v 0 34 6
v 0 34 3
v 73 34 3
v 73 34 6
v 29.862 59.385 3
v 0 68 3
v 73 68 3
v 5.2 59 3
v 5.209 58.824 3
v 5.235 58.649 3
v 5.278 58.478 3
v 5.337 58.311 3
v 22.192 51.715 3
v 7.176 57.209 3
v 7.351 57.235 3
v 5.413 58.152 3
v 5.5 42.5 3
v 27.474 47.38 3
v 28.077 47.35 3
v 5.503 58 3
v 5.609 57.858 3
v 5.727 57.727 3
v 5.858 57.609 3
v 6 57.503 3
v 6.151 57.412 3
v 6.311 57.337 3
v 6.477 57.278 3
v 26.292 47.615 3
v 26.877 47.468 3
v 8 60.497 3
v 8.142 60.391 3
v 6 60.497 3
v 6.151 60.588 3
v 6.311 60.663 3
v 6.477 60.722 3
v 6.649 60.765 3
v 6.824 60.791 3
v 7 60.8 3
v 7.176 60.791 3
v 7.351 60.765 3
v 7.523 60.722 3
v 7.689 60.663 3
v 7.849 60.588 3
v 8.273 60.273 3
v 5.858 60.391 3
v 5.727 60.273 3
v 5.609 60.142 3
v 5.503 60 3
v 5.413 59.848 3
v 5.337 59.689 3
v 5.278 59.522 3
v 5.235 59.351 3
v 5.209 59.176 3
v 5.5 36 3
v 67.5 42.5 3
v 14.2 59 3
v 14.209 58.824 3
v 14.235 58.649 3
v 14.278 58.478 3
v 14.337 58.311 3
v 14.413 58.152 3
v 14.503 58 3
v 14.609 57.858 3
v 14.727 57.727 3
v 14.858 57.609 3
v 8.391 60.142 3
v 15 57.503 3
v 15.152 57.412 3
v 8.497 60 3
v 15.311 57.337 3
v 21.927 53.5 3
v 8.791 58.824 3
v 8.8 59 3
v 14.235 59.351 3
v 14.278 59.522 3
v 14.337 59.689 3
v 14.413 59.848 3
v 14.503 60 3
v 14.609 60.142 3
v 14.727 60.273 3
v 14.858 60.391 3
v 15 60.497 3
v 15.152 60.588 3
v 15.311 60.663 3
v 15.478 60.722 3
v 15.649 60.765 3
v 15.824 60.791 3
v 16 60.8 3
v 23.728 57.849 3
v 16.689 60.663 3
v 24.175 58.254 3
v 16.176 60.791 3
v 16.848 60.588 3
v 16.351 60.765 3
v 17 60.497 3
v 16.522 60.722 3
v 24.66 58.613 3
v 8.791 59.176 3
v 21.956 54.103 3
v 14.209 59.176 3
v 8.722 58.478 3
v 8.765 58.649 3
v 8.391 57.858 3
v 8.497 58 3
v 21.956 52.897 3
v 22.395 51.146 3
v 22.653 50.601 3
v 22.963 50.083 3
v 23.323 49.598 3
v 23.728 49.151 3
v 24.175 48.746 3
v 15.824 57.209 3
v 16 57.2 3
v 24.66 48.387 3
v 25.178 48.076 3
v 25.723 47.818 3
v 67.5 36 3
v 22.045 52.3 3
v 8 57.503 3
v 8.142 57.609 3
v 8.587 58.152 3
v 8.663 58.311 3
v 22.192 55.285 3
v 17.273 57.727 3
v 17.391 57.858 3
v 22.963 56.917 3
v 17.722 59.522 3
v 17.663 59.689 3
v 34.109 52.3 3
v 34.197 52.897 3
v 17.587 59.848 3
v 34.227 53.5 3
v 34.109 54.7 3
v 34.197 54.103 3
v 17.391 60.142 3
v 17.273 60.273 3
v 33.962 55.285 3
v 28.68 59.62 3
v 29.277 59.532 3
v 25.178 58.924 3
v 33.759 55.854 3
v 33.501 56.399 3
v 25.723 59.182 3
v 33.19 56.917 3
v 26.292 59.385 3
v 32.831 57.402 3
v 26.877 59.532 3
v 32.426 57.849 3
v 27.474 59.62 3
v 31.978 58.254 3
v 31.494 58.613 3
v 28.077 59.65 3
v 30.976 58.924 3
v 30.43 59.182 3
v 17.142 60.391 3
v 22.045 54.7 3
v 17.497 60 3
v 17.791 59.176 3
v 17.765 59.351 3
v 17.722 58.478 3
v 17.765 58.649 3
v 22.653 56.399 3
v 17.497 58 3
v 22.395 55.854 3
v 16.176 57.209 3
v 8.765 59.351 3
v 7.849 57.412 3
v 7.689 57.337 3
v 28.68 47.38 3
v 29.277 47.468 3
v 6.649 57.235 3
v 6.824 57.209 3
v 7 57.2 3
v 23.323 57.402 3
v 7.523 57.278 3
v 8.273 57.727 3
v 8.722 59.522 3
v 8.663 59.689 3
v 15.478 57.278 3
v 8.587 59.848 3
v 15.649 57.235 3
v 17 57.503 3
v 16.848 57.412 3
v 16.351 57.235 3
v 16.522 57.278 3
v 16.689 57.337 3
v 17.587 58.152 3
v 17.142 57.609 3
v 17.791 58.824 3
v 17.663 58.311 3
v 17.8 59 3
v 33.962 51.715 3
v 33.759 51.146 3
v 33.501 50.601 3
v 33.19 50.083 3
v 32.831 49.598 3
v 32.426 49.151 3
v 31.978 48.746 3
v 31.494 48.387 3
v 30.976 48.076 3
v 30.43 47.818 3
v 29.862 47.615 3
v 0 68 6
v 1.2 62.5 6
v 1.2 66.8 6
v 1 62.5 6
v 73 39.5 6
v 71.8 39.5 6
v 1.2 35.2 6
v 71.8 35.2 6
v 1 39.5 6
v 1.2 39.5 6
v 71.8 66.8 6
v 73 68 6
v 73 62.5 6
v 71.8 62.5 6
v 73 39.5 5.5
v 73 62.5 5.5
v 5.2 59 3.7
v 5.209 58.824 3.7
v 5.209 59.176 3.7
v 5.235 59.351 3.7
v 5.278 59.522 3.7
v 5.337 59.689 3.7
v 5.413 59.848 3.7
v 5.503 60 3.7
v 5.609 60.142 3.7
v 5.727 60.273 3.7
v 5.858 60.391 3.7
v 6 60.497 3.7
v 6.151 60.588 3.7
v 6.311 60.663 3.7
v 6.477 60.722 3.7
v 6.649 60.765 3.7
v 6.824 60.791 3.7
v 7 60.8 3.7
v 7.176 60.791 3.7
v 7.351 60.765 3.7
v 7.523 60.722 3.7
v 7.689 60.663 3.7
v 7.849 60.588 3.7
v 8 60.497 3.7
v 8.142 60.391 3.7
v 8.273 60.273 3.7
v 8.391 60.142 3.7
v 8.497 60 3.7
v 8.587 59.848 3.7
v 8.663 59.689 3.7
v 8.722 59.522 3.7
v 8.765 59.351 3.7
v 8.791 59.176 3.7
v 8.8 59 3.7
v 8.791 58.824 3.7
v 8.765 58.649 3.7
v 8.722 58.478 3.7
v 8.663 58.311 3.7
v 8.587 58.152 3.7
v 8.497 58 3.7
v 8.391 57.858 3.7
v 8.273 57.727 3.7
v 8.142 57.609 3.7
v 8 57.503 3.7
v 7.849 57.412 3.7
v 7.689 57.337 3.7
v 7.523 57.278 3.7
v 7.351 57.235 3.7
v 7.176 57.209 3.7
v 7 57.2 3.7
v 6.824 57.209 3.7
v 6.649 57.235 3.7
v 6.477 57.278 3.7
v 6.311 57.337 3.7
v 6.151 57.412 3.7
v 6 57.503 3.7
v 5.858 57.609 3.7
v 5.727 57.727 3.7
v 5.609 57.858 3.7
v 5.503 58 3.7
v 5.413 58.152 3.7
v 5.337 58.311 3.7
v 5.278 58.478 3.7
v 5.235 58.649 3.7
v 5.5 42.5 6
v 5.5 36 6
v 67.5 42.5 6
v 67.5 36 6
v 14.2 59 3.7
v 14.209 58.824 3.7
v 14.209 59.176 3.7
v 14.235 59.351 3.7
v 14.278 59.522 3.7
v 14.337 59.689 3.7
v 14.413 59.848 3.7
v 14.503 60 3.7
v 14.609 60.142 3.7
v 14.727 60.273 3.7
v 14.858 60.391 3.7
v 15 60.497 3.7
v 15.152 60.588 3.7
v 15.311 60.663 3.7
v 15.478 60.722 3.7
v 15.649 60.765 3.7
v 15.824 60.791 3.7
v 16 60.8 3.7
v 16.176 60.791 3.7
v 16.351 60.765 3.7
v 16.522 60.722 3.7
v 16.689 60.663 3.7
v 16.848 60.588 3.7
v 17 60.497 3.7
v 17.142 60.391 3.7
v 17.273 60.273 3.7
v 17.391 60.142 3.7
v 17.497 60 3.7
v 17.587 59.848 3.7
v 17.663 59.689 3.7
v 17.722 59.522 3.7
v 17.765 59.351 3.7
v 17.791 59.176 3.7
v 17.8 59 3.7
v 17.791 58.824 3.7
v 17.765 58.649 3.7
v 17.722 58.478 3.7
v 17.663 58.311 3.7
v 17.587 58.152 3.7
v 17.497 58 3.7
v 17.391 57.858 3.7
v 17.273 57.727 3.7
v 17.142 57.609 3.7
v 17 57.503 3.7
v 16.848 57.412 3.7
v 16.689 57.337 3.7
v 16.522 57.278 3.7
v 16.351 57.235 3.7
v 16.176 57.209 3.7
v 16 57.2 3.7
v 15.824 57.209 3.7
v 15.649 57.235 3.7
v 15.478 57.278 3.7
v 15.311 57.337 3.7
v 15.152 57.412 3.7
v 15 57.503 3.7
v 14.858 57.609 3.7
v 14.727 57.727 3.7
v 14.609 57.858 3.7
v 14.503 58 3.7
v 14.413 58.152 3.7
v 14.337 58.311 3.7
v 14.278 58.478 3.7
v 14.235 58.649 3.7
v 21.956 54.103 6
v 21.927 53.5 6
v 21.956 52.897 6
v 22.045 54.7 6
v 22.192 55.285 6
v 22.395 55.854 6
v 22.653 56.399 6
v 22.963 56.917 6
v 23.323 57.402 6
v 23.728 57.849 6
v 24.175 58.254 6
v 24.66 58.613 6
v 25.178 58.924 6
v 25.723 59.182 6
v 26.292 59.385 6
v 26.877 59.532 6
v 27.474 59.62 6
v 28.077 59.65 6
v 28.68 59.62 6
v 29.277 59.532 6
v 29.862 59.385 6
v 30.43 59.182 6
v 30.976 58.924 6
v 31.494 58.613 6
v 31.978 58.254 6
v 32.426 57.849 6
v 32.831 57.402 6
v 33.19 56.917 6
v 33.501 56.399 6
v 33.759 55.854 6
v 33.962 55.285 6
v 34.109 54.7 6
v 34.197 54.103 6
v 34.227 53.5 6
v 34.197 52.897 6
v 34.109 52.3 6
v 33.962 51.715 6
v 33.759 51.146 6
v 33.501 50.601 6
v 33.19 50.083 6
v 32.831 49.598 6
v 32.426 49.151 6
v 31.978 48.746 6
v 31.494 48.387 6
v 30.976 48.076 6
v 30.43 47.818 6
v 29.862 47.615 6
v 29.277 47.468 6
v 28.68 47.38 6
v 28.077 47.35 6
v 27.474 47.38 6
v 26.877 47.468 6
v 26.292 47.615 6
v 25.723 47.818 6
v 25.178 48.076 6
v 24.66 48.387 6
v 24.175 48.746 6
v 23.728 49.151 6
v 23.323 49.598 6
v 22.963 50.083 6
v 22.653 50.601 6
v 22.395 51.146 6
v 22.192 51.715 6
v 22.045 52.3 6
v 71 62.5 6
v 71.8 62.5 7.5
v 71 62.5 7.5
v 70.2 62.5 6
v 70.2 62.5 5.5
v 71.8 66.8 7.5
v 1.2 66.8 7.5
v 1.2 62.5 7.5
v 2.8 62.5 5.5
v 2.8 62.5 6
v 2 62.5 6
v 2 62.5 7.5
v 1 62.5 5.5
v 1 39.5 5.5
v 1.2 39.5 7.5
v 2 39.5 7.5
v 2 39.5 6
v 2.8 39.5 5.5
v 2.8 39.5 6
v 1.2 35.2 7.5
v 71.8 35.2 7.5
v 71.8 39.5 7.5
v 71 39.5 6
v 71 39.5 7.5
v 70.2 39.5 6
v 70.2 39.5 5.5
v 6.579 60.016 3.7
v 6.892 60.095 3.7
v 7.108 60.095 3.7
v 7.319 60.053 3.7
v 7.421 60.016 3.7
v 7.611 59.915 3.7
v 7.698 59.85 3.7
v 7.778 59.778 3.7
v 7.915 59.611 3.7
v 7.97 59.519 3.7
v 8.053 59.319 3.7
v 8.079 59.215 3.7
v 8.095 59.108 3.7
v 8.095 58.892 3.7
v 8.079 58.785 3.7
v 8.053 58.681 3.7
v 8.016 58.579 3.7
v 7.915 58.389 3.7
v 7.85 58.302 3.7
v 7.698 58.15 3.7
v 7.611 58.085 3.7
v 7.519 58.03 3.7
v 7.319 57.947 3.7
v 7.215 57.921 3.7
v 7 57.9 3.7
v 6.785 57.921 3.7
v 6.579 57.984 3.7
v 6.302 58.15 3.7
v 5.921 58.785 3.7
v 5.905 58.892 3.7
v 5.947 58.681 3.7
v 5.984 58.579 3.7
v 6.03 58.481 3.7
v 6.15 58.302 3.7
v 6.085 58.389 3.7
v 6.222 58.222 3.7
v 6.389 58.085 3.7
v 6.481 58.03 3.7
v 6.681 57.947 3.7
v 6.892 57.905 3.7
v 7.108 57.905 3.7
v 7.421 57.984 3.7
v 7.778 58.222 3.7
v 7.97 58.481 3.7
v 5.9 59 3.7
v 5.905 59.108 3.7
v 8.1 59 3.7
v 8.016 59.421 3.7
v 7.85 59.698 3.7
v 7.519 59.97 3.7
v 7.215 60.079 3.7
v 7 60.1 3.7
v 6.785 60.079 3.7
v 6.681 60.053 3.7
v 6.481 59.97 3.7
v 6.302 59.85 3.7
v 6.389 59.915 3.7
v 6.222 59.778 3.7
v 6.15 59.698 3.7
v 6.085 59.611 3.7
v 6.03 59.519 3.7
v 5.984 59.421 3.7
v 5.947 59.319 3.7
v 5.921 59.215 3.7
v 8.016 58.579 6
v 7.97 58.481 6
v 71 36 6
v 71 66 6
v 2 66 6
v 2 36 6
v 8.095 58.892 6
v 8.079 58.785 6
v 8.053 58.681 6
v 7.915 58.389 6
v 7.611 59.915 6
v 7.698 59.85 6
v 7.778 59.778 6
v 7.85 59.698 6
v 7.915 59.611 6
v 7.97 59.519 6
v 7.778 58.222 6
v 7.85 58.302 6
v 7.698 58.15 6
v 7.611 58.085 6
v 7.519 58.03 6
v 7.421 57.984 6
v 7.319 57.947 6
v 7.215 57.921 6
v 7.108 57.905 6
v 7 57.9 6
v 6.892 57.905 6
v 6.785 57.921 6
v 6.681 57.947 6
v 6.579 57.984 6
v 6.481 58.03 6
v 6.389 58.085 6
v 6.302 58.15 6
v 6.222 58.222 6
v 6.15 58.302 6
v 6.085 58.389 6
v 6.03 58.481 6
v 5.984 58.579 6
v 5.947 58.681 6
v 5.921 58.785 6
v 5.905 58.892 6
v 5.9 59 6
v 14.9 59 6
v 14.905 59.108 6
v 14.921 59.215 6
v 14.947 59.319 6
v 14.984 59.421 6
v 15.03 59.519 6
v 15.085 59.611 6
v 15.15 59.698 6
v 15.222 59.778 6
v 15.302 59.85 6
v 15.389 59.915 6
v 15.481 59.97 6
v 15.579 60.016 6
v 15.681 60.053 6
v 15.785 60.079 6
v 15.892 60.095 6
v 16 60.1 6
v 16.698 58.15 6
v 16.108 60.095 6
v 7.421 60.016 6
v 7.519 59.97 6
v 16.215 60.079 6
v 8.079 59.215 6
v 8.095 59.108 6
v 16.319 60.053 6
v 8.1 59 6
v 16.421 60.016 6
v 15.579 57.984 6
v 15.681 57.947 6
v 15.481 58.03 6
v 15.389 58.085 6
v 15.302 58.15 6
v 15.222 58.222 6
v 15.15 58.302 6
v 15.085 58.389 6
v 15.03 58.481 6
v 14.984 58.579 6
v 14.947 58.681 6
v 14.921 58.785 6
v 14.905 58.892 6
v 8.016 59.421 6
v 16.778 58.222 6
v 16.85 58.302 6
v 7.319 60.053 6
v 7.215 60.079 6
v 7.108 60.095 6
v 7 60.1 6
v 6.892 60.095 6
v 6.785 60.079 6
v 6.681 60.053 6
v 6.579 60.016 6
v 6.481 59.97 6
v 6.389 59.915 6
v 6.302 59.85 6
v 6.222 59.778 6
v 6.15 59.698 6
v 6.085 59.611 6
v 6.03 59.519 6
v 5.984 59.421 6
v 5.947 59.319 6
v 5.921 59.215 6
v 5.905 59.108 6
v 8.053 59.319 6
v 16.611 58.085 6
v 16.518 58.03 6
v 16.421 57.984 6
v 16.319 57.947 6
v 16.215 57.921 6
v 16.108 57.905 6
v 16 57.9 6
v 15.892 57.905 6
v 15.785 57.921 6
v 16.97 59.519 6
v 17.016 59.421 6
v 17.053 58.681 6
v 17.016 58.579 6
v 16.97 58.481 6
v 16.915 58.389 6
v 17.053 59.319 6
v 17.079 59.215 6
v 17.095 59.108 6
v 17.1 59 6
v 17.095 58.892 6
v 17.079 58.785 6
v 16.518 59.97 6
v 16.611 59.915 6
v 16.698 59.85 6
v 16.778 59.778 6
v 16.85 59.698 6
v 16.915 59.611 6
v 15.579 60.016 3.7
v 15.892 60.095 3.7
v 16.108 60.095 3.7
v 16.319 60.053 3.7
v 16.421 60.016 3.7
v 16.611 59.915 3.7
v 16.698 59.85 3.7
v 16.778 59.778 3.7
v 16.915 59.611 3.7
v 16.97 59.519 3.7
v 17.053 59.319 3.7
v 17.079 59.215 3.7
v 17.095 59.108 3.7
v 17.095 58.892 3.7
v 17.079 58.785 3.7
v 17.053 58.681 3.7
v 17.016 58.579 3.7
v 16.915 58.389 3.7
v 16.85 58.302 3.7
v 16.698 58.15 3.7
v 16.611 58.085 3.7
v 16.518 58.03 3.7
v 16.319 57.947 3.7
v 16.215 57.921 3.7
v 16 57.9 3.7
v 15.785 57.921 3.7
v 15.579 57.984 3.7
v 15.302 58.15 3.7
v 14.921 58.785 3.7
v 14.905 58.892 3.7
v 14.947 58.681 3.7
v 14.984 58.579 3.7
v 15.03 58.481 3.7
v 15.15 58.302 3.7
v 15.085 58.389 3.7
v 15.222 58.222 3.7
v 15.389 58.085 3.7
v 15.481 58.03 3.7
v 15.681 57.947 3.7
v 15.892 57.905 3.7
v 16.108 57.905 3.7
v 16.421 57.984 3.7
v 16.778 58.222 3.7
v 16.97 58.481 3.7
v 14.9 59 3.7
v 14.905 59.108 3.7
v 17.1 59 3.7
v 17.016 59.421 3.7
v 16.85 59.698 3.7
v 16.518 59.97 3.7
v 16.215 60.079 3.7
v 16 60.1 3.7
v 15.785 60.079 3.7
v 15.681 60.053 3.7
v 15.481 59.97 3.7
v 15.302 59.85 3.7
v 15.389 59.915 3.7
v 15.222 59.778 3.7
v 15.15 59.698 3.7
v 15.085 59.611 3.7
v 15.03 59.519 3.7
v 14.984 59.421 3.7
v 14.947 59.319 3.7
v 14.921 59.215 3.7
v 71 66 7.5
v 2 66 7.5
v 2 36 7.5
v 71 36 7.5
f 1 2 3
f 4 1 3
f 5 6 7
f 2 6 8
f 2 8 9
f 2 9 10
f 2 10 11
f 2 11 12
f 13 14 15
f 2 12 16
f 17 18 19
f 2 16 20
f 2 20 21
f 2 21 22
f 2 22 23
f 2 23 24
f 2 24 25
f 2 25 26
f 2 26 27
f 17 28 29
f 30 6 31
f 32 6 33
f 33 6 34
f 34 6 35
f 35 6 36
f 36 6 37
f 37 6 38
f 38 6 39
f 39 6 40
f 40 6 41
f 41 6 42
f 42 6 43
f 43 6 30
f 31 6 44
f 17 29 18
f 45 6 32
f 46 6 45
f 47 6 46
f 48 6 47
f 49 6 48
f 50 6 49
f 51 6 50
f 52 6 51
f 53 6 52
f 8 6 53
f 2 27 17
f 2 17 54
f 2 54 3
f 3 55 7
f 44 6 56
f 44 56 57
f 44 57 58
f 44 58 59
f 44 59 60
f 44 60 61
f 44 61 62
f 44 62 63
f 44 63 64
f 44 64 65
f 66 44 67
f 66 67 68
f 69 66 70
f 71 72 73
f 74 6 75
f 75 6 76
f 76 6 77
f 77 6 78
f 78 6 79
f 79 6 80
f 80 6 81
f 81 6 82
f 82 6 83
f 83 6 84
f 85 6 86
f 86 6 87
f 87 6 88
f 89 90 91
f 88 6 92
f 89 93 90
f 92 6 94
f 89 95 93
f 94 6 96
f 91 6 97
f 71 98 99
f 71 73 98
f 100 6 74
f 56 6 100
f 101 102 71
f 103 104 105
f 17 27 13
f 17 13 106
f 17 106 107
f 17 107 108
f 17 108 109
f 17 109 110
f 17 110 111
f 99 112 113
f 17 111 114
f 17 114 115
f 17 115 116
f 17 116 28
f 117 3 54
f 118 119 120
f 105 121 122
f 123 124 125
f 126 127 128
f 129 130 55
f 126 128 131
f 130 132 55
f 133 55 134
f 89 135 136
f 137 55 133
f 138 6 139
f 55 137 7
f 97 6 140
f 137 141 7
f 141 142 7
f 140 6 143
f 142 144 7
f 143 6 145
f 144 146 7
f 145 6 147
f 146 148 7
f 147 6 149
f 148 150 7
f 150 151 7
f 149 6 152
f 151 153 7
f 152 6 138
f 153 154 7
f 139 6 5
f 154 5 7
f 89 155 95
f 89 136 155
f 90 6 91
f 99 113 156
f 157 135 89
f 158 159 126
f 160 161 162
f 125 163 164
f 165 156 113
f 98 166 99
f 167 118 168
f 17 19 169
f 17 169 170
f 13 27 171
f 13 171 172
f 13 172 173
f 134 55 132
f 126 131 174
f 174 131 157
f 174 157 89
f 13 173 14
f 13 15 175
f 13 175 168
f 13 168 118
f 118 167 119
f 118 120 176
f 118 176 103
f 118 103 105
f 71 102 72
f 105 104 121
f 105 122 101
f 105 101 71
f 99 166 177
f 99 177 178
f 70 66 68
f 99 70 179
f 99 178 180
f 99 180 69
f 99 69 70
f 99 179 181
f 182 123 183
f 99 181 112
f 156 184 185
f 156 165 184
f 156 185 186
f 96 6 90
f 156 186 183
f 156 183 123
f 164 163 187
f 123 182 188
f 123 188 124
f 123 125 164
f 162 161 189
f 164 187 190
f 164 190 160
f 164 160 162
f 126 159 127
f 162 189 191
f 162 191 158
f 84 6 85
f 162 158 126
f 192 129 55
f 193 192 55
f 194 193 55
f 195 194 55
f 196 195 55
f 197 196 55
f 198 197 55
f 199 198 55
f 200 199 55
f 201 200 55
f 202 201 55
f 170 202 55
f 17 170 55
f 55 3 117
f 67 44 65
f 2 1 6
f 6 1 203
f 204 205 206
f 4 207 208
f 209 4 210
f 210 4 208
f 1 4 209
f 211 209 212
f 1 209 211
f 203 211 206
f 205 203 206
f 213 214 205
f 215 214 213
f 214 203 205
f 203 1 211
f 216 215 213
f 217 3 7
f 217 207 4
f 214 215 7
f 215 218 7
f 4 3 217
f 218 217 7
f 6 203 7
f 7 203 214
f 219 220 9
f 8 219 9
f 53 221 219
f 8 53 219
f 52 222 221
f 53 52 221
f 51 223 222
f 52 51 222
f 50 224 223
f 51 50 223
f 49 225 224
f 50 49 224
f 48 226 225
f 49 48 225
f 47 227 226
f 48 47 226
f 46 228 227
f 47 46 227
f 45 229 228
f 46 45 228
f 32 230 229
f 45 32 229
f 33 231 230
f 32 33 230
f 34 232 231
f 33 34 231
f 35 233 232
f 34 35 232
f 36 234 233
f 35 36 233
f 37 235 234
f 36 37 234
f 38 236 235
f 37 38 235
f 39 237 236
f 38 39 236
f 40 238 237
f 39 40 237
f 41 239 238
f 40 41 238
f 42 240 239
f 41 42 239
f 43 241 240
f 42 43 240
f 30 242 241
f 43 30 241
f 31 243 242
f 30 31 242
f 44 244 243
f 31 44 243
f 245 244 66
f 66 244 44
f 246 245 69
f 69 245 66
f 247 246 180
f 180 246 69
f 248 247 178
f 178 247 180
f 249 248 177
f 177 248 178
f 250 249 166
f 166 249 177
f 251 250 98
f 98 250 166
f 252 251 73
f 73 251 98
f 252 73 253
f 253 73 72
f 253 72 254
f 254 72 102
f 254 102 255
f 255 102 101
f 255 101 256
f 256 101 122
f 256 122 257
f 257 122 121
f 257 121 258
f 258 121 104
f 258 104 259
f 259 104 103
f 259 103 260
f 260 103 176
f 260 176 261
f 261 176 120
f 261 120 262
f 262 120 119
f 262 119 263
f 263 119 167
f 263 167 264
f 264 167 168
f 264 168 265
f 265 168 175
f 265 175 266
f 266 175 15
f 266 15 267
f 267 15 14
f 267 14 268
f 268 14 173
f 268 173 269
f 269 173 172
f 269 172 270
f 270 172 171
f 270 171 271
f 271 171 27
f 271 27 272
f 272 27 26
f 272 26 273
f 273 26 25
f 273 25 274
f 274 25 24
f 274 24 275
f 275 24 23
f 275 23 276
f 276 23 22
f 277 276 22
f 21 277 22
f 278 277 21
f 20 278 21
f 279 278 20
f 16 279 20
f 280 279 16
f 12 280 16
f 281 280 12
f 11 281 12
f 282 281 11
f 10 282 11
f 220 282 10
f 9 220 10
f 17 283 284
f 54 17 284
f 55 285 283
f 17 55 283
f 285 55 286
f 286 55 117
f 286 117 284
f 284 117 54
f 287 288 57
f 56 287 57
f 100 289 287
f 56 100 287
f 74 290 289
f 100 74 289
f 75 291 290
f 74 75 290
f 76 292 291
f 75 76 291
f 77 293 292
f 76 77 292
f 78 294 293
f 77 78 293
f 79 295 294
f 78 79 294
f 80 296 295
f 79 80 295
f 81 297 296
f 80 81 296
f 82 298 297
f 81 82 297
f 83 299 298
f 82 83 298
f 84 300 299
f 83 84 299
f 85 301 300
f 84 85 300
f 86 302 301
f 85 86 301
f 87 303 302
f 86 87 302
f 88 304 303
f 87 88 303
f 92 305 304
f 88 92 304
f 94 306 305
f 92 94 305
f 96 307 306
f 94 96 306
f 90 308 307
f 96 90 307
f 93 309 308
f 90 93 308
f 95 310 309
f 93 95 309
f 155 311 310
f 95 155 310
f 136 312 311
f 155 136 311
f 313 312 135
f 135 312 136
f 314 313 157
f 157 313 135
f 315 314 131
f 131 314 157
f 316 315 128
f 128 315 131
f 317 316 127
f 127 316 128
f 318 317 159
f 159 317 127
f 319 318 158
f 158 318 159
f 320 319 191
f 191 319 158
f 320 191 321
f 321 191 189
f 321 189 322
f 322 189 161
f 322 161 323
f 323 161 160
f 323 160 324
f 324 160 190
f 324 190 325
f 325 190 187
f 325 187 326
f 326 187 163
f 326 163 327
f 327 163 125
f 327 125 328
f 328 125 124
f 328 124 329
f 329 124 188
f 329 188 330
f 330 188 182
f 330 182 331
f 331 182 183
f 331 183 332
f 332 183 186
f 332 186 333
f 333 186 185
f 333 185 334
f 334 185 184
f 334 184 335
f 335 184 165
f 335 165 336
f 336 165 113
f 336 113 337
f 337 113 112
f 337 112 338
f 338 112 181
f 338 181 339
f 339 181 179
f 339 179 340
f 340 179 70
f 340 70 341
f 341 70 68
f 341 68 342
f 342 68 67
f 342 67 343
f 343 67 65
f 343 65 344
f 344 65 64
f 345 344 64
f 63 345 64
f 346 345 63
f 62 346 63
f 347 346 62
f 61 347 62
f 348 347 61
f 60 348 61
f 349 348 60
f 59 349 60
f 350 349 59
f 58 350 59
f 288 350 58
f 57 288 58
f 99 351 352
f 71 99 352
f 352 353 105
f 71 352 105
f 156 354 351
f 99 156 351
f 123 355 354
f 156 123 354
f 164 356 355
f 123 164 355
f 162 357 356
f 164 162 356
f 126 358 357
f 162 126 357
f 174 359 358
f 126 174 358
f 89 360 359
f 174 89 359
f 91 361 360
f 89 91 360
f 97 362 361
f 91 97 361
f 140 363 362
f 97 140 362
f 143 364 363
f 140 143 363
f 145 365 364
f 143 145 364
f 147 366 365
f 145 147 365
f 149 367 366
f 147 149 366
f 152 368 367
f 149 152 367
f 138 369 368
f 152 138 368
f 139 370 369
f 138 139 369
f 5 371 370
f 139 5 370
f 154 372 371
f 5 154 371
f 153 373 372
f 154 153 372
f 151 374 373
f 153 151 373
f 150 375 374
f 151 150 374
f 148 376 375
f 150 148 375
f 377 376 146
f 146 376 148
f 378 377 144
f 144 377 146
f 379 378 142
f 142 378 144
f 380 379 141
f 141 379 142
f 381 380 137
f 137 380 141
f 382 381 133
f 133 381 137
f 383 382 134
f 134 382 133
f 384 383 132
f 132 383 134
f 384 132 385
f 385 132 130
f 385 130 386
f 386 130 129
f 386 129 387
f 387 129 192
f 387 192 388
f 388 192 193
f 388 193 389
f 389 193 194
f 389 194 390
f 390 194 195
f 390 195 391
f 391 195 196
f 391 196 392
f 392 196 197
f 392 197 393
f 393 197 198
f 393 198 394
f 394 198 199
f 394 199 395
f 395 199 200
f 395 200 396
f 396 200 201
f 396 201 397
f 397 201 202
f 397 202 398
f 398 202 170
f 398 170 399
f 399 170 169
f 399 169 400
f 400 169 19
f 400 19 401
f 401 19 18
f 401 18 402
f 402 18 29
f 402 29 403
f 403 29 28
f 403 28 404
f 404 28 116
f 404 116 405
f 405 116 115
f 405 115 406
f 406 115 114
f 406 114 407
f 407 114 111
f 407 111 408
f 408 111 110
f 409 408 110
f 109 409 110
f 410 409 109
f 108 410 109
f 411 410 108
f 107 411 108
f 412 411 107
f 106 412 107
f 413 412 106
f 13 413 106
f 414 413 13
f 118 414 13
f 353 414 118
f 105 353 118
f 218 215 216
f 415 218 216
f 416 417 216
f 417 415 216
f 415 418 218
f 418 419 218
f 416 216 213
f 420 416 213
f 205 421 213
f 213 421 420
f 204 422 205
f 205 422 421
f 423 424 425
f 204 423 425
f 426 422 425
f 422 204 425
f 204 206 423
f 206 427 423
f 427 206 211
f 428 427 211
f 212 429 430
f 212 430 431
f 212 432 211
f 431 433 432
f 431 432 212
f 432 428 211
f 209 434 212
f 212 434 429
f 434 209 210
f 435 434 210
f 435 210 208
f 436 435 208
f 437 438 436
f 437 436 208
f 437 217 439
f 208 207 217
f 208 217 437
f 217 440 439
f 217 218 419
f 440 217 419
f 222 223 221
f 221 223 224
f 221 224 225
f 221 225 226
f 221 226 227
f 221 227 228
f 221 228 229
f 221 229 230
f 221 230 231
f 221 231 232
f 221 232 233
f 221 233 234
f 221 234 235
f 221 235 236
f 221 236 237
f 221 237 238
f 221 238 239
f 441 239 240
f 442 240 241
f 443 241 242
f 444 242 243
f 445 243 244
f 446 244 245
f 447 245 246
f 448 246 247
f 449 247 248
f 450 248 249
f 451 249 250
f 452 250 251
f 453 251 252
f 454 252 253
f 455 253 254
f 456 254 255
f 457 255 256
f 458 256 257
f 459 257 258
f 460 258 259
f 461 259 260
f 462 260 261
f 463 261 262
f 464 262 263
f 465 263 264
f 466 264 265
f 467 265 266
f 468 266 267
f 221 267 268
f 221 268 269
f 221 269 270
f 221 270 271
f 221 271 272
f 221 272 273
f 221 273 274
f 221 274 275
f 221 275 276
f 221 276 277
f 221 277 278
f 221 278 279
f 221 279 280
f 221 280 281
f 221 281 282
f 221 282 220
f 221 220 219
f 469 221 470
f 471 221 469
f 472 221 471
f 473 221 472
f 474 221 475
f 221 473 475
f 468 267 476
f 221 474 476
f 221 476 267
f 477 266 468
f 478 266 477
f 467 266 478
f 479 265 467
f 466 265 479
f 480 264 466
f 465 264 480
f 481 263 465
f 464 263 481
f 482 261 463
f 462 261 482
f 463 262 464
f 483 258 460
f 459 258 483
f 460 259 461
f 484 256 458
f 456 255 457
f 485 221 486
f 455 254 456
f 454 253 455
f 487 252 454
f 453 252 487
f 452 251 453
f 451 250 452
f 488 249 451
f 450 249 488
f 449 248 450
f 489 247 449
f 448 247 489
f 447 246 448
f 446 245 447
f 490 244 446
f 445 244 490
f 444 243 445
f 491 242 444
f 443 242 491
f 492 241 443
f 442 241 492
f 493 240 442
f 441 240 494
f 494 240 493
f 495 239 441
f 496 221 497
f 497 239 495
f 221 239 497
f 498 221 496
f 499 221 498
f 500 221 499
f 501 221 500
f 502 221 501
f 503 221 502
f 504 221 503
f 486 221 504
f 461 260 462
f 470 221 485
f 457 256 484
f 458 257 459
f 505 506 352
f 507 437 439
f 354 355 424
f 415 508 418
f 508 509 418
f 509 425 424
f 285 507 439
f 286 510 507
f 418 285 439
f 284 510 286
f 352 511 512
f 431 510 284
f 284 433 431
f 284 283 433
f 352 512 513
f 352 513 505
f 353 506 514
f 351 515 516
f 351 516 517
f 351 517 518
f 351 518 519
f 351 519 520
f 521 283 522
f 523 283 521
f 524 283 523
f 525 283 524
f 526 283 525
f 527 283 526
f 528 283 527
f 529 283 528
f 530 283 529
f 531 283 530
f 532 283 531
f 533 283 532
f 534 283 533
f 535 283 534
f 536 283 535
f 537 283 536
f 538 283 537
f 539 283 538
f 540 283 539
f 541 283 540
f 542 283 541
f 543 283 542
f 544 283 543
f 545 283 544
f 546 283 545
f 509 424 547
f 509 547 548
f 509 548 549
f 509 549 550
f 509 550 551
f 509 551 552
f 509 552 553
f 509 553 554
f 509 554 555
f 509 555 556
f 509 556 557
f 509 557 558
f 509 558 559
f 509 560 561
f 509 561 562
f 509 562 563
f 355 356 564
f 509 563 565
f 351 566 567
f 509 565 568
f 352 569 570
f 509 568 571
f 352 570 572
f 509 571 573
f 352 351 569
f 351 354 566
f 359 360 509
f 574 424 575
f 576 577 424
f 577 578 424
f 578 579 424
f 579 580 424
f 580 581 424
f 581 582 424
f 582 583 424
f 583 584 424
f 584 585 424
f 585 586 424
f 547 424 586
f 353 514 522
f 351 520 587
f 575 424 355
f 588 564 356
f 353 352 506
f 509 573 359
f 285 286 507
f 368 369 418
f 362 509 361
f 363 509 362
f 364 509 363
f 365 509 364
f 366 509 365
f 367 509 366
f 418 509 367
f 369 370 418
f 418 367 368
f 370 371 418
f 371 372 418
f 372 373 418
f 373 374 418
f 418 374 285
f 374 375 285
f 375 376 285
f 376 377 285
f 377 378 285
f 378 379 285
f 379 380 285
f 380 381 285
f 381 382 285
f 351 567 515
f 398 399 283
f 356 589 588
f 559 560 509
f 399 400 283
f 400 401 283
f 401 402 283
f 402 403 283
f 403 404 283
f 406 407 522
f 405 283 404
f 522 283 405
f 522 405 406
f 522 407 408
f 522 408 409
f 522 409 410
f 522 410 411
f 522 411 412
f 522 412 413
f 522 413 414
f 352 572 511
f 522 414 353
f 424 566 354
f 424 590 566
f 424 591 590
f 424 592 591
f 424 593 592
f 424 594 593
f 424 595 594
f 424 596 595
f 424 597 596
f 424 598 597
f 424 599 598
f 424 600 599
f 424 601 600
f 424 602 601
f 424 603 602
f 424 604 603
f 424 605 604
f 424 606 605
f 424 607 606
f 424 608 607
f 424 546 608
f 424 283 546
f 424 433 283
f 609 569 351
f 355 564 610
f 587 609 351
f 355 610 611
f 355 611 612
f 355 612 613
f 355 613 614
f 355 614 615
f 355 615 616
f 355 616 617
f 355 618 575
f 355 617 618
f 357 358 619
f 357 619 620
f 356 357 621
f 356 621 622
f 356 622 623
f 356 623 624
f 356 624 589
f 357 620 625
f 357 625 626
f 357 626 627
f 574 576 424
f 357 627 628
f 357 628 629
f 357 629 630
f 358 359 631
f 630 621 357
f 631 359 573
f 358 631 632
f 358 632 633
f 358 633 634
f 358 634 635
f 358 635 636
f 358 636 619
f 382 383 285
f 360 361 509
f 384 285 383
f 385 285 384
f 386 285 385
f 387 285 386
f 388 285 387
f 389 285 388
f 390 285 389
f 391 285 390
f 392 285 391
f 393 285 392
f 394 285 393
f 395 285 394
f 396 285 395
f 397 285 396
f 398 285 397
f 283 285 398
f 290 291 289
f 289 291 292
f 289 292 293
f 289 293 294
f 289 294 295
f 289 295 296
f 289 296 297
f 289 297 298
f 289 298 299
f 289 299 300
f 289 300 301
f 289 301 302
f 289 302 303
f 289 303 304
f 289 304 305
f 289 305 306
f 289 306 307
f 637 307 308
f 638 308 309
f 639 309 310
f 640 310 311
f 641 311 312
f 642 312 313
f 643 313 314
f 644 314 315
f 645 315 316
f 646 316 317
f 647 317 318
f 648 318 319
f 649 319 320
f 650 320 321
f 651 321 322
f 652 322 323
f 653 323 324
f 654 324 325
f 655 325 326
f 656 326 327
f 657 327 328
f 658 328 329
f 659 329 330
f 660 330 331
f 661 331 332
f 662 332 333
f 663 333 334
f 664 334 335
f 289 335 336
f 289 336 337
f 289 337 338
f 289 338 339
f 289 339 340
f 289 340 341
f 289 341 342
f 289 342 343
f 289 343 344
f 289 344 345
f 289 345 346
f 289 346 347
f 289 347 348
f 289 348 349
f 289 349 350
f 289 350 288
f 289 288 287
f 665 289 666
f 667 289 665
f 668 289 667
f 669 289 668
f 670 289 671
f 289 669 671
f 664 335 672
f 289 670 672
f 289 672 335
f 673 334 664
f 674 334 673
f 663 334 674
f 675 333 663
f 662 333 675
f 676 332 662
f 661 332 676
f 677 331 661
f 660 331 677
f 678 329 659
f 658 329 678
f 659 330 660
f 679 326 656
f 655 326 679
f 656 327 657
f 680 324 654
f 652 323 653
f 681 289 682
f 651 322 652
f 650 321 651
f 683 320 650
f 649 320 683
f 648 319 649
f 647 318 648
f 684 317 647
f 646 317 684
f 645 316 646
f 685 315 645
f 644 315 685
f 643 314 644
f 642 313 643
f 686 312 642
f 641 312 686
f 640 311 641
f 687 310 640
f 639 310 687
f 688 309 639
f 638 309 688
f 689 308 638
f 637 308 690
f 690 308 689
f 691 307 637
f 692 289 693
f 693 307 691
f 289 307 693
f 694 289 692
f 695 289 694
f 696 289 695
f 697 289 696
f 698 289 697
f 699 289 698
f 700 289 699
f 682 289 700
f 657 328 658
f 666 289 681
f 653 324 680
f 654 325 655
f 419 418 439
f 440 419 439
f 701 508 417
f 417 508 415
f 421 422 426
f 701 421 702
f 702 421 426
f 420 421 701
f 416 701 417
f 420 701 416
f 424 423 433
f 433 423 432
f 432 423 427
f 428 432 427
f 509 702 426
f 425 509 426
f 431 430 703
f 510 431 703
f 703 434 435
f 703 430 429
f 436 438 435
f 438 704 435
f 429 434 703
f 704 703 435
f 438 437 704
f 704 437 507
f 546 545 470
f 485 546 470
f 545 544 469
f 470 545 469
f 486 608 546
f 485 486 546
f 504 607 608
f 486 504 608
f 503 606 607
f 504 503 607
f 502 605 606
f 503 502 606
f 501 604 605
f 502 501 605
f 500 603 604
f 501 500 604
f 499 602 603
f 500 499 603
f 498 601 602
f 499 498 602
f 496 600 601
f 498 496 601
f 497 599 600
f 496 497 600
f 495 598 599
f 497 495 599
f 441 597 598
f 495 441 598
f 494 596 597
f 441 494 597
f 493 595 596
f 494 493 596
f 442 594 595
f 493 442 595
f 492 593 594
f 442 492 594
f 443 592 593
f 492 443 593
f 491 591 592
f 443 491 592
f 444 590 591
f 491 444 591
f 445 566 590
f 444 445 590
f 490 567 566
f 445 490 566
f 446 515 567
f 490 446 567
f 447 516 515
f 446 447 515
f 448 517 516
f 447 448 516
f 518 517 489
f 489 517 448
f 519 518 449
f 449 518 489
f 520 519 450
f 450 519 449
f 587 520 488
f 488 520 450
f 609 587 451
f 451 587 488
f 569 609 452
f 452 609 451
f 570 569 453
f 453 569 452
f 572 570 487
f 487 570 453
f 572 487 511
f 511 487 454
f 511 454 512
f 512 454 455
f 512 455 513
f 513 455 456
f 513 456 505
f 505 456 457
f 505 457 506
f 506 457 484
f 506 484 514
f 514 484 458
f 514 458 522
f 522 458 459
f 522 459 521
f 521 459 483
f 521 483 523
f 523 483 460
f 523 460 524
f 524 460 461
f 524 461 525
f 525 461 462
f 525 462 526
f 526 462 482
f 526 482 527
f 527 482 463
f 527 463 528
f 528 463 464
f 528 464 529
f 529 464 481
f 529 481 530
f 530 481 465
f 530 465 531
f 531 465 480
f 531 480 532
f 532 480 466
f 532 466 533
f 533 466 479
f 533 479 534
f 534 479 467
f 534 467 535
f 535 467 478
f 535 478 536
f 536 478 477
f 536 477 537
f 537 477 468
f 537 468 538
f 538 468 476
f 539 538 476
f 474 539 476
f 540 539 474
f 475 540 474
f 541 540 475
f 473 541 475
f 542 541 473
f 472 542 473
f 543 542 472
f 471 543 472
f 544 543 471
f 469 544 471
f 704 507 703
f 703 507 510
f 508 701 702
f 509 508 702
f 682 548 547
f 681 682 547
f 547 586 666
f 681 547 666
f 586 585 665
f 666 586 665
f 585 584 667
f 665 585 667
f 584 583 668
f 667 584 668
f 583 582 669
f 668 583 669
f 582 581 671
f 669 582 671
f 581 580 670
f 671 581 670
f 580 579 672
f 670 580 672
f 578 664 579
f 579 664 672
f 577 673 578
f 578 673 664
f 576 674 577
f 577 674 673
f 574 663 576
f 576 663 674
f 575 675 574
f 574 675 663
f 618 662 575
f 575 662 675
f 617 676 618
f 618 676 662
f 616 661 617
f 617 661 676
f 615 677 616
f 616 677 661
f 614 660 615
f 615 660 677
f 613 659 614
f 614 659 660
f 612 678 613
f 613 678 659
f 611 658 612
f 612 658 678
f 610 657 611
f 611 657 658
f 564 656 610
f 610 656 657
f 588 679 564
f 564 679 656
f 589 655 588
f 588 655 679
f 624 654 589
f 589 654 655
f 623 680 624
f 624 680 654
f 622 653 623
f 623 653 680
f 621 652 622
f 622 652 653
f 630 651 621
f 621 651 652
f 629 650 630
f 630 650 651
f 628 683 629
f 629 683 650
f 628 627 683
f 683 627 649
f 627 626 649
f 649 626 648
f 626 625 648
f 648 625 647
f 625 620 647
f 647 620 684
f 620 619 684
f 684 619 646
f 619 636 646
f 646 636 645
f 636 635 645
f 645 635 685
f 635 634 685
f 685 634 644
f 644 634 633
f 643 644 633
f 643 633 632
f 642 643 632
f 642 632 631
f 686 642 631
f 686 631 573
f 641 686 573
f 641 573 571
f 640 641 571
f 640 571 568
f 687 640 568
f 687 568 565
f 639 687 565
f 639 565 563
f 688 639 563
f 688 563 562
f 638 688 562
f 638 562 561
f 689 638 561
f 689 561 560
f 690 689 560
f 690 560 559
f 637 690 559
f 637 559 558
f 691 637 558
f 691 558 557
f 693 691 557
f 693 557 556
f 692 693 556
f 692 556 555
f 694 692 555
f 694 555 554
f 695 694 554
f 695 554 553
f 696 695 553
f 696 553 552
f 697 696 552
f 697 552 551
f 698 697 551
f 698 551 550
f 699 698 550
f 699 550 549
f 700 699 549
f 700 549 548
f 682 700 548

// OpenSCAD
// ==========================================
// Raspberry Pi Zero 2 W - Bento Box (Top Cover) - Clean GPIO Slit (Y=2.0)
// ==========================================

// --- Raspberry Pi Zero 2 W 基本サイズ ---
pi_w = 69.0; // SDカードの2mmはみ出しを含めた調整値
pi_d = 30.0; 

// --- ケースの基本設定 ---
thickness       = 1.0;    // 周囲の壁の厚み (1.0mm)
clearance       = 1.0;    // 基板とケース内壁の隙間
cover_thickness = 3.0;    // 蓋の天面プレート自体の厚み (3.0mm)
cover_h         = 1.5;    // 内部部品と干渉しないようインロー高さを1.5mmに最適化

// 内寸と外寸の計算
inner_w = pi_w + (clearance * 2);
inner_d = pi_d + (clearance * 2);
outer_w = inner_w + (thickness * 2);
outer_d = inner_d + (thickness * 2); // 正確に 34.0mm に固定

// 🔩 反対側（奥側）のフチから手前に向かって「9.0mm」離した位置（Y=25.0）に固定
bracket_y = 25.0; 

bracket_screw_pass_r = 1.1; // M2ネジ用 (直径2.2mmの穴)

// 📌 GPIOリボンケーブル用スリット窓の寸法
gpio_w   = 62.0; // 窓の長さ (X軸方向)
gpio_d   = 6.5;  // 窓の幅 (Y軸方向)

// 🎤 マイク穴の設定
mic_dia = 12.3;
mic_r   = mic_dia / 2;
mic_x   = outer_w / 2.6;  // X軸の中央に配置
mic_y   = 19.5;         // GPIOスリット(Y=2.0~8.5)とネジ穴(Y=25.0)の間に配置

$fn = 64; // 円をより滑らかにするために32から64に変更

// --- メインレンダリング ---
translate([0, outer_d, cover_thickness])
    top_cover();

// --- モジュール定義 ---
module top_cover() {
    fit_gap       = 0.2; // 嵌め合い部（インロー）のクリアランス
    lip_thickness = 0.8; // インローの突起自体の肉厚
    
    difference() {
        union() {
            // 1. 蓋の天面プレート（厚み3.0mm）
            cube([outer_w, outer_d, cover_thickness]);
            
            // 2. 凹凸の噛み合わせ（インロー固定部）
            translate([thickness + fit_gap, thickness + fit_gap, cover_thickness])
                difference() {
                    cube([inner_w - (fit_gap * 2), inner_d - (fit_gap * 2), cover_h]);
                    
                    // 内側をくり抜いて突起（リップ）を形成
                    translate([lip_thickness, lip_thickness, -0.5])
                        cube([
                            inner_w - (fit_gap * 2) - (lip_thickness * 2), 
                            inner_d - (fit_gap * 2) - (lip_thickness * 2), 
                            cover_h + 1
                        ]);
                }
        }
        
        // ✂️ ボトム側の左右21mm窓と干渉するインローの壁をカットする処理
        translate([thickness, outer_d/2 - 11.5, cover_thickness - 0.5])
            cube([lip_thickness + 1, 23, cover_h + 1]);
            
        translate([outer_w - thickness - lip_thickness - 1, outer_d/2 - 11.5, cover_thickness - 0.5])
            cube([lip_thickness + 2, 23, cover_h + 1]);

        // 🔩 3mmの天面からインロー頂点までを完全に撃ち抜く貫通ネジ穴
        // X = 7.0mm と 16.0mm、Y = 25.0mm の正しいブラケットピッチ位置
        translate([0, 0, -0.5]) {
            bracket_mount_hole(7.0, bracket_y);
            bracket_mount_hole(16.0, bracket_y);
        }

        // 📌 GPIOスリット窓を手前フチ（Y=2.0）に配置
        translate([thickness + clearance + 3.5, 2.0, -0.5])
            cube([gpio_w, gpio_d, cover_thickness + cover_h + 1.0]);

        // 🎤 マイク用貫通穴
        translate([mic_x, mic_y, -0.5])
            cylinder(r = mic_r, h = cover_thickness + cover_h + 1.0);
    }
}

// ネジ穴と皿モミ加工モジュール
module bracket_mount_hole(x, y) {
    translate([x, y, 0]) {
        // M2ネジ用の全貫通穴
        cylinder(r = bracket_screw_pass_r, h = cover_thickness + cover_h + 2.0);
        
        // ネジ頭用の皿モミ（深さ1.2mm、直径3.6mm）
        translate([0, 0, -0.1])
            cylinder(r = 1.8, h = 1.3);
    }
}
